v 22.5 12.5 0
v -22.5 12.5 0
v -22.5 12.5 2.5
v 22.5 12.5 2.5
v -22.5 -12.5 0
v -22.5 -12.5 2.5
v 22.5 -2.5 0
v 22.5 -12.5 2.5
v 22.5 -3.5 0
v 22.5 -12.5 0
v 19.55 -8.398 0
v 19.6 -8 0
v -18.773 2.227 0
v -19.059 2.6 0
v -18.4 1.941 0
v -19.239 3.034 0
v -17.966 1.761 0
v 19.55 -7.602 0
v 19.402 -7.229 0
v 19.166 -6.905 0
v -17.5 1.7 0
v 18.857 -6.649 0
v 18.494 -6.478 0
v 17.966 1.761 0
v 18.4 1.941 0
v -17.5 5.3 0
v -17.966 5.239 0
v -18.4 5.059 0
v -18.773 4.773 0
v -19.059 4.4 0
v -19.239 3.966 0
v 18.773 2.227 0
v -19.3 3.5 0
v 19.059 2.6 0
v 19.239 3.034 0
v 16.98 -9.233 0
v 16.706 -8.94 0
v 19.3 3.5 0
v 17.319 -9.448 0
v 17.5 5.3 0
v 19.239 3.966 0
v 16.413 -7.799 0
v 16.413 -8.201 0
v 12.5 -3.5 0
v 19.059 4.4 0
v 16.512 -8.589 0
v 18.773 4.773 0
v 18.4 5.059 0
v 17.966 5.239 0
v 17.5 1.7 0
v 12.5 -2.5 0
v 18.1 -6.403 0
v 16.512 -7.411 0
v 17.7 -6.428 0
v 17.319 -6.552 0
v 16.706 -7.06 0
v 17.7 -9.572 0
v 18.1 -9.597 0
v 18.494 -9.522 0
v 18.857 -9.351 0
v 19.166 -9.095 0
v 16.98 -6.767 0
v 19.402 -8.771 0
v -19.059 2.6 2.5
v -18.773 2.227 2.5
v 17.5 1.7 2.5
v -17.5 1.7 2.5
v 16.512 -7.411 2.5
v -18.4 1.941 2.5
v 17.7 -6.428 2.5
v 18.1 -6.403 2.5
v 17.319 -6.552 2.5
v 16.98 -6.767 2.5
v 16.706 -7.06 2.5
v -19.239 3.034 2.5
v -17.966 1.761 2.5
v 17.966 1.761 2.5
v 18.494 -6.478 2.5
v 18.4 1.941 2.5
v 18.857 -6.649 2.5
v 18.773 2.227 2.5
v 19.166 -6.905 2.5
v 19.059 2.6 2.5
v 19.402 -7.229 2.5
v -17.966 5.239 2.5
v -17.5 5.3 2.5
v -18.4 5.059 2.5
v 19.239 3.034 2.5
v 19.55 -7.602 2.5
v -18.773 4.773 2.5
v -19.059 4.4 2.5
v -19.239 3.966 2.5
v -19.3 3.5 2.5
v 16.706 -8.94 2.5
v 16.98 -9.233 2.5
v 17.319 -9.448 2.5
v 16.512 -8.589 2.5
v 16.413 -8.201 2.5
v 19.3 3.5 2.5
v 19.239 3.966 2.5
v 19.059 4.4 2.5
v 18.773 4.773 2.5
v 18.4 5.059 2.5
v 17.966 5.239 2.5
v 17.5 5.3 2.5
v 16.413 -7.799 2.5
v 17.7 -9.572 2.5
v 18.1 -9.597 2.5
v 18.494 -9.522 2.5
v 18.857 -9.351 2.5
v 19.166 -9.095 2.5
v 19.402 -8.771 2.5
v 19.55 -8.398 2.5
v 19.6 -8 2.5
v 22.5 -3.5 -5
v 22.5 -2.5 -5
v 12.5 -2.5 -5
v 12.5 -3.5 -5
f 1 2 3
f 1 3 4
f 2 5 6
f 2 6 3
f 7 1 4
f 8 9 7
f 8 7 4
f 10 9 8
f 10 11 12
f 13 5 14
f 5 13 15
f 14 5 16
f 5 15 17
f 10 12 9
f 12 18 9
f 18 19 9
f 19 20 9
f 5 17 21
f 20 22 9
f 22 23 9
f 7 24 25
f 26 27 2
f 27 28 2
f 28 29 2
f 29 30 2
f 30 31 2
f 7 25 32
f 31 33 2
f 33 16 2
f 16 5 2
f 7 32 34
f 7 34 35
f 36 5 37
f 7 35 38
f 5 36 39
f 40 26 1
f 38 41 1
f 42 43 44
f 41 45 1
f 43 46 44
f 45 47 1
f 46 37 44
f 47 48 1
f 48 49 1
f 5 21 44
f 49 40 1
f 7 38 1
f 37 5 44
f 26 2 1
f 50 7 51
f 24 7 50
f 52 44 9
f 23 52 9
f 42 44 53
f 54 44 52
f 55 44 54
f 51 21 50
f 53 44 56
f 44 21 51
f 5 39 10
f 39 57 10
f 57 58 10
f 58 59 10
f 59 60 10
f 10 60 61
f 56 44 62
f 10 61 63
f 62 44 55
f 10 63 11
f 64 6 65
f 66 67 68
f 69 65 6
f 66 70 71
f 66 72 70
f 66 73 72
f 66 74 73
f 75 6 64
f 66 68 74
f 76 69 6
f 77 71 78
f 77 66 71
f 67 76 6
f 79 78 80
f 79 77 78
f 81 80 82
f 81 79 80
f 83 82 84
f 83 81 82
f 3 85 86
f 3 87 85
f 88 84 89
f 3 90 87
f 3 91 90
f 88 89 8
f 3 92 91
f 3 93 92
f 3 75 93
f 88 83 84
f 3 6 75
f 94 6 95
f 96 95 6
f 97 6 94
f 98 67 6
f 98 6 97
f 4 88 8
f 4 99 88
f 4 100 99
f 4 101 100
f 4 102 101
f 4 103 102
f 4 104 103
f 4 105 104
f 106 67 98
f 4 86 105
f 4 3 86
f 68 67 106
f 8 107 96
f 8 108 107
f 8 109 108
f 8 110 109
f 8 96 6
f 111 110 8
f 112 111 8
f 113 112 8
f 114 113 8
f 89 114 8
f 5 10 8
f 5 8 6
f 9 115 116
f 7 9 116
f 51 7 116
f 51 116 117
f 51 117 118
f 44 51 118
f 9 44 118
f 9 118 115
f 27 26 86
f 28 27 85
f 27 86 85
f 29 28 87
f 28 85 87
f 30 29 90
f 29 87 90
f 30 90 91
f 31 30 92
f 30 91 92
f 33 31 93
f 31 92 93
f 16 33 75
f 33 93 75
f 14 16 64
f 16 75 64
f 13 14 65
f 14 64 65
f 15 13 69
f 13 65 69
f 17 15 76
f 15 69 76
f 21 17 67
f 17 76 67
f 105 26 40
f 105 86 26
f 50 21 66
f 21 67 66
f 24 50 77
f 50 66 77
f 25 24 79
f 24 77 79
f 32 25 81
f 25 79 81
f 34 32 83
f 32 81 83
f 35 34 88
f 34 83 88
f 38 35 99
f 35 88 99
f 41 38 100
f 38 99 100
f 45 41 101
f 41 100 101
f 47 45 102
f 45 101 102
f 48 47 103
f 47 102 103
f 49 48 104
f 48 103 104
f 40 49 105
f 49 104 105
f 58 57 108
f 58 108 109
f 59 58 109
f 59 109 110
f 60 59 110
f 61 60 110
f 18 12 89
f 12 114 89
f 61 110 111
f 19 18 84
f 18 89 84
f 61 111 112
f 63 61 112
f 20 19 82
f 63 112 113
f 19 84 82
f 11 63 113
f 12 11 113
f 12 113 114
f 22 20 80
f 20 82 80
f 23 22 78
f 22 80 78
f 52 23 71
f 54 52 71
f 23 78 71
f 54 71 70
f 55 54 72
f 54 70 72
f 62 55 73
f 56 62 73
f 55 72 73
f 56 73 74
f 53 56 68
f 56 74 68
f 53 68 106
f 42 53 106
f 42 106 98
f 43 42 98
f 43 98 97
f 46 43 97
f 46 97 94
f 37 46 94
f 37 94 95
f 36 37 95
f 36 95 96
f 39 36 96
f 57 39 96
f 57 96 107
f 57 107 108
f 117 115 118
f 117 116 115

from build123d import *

# Parameters (mm, degrees)
SKETCH_W     = 45
SKETCH_H     = 25
PAD_DEPTH    = 2.5
SKETCH001_R  = 1.6
POCKET_DEPTH = 5
SKETCH002_W  = 10
SKETCH002_H  = 1
PAD001_DEPTH = 5


with BuildPart() as part:
    # Sketch → Pad (new body)
    with BuildSketch(Plane.XY):
        Rectangle(SKETCH_W, SKETCH_H)
    extrude(amount=PAD_DEPTH)

    # Sketch001 → Pocket (cut)
    with BuildSketch(Plane.XY.offset(2.5)):
        with Locations((18, -8)):
            Circle(SKETCH001_R)
        with BuildLine():
            ThreePointArc((-17.5, 5.3), (-19.3, 3.5), (-17.5, 1.7))
            Line((-17.5, 1.7), (17.5, 1.7))
            ThreePointArc((17.5, 1.7), (19.3, 3.5), (17.5, 5.3))
            Line((-17.5, 5.3), (17.5, 5.3))
        make_face()
    extrude(amount=-POCKET_DEPTH, mode=Mode.SUBTRACT)

    # Sketch002 → Pad001 (new body)
    with BuildSketch(Plane(origin=(0, 0, 0), x_dir=(1, 0, 0), z_dir=(0, 0, -1))):
        with Locations((17.5, 3)):
            Rectangle(SKETCH002_W, SKETCH002_H)
    extrude(amount=PAD001_DEPTH)


solid = part.part
